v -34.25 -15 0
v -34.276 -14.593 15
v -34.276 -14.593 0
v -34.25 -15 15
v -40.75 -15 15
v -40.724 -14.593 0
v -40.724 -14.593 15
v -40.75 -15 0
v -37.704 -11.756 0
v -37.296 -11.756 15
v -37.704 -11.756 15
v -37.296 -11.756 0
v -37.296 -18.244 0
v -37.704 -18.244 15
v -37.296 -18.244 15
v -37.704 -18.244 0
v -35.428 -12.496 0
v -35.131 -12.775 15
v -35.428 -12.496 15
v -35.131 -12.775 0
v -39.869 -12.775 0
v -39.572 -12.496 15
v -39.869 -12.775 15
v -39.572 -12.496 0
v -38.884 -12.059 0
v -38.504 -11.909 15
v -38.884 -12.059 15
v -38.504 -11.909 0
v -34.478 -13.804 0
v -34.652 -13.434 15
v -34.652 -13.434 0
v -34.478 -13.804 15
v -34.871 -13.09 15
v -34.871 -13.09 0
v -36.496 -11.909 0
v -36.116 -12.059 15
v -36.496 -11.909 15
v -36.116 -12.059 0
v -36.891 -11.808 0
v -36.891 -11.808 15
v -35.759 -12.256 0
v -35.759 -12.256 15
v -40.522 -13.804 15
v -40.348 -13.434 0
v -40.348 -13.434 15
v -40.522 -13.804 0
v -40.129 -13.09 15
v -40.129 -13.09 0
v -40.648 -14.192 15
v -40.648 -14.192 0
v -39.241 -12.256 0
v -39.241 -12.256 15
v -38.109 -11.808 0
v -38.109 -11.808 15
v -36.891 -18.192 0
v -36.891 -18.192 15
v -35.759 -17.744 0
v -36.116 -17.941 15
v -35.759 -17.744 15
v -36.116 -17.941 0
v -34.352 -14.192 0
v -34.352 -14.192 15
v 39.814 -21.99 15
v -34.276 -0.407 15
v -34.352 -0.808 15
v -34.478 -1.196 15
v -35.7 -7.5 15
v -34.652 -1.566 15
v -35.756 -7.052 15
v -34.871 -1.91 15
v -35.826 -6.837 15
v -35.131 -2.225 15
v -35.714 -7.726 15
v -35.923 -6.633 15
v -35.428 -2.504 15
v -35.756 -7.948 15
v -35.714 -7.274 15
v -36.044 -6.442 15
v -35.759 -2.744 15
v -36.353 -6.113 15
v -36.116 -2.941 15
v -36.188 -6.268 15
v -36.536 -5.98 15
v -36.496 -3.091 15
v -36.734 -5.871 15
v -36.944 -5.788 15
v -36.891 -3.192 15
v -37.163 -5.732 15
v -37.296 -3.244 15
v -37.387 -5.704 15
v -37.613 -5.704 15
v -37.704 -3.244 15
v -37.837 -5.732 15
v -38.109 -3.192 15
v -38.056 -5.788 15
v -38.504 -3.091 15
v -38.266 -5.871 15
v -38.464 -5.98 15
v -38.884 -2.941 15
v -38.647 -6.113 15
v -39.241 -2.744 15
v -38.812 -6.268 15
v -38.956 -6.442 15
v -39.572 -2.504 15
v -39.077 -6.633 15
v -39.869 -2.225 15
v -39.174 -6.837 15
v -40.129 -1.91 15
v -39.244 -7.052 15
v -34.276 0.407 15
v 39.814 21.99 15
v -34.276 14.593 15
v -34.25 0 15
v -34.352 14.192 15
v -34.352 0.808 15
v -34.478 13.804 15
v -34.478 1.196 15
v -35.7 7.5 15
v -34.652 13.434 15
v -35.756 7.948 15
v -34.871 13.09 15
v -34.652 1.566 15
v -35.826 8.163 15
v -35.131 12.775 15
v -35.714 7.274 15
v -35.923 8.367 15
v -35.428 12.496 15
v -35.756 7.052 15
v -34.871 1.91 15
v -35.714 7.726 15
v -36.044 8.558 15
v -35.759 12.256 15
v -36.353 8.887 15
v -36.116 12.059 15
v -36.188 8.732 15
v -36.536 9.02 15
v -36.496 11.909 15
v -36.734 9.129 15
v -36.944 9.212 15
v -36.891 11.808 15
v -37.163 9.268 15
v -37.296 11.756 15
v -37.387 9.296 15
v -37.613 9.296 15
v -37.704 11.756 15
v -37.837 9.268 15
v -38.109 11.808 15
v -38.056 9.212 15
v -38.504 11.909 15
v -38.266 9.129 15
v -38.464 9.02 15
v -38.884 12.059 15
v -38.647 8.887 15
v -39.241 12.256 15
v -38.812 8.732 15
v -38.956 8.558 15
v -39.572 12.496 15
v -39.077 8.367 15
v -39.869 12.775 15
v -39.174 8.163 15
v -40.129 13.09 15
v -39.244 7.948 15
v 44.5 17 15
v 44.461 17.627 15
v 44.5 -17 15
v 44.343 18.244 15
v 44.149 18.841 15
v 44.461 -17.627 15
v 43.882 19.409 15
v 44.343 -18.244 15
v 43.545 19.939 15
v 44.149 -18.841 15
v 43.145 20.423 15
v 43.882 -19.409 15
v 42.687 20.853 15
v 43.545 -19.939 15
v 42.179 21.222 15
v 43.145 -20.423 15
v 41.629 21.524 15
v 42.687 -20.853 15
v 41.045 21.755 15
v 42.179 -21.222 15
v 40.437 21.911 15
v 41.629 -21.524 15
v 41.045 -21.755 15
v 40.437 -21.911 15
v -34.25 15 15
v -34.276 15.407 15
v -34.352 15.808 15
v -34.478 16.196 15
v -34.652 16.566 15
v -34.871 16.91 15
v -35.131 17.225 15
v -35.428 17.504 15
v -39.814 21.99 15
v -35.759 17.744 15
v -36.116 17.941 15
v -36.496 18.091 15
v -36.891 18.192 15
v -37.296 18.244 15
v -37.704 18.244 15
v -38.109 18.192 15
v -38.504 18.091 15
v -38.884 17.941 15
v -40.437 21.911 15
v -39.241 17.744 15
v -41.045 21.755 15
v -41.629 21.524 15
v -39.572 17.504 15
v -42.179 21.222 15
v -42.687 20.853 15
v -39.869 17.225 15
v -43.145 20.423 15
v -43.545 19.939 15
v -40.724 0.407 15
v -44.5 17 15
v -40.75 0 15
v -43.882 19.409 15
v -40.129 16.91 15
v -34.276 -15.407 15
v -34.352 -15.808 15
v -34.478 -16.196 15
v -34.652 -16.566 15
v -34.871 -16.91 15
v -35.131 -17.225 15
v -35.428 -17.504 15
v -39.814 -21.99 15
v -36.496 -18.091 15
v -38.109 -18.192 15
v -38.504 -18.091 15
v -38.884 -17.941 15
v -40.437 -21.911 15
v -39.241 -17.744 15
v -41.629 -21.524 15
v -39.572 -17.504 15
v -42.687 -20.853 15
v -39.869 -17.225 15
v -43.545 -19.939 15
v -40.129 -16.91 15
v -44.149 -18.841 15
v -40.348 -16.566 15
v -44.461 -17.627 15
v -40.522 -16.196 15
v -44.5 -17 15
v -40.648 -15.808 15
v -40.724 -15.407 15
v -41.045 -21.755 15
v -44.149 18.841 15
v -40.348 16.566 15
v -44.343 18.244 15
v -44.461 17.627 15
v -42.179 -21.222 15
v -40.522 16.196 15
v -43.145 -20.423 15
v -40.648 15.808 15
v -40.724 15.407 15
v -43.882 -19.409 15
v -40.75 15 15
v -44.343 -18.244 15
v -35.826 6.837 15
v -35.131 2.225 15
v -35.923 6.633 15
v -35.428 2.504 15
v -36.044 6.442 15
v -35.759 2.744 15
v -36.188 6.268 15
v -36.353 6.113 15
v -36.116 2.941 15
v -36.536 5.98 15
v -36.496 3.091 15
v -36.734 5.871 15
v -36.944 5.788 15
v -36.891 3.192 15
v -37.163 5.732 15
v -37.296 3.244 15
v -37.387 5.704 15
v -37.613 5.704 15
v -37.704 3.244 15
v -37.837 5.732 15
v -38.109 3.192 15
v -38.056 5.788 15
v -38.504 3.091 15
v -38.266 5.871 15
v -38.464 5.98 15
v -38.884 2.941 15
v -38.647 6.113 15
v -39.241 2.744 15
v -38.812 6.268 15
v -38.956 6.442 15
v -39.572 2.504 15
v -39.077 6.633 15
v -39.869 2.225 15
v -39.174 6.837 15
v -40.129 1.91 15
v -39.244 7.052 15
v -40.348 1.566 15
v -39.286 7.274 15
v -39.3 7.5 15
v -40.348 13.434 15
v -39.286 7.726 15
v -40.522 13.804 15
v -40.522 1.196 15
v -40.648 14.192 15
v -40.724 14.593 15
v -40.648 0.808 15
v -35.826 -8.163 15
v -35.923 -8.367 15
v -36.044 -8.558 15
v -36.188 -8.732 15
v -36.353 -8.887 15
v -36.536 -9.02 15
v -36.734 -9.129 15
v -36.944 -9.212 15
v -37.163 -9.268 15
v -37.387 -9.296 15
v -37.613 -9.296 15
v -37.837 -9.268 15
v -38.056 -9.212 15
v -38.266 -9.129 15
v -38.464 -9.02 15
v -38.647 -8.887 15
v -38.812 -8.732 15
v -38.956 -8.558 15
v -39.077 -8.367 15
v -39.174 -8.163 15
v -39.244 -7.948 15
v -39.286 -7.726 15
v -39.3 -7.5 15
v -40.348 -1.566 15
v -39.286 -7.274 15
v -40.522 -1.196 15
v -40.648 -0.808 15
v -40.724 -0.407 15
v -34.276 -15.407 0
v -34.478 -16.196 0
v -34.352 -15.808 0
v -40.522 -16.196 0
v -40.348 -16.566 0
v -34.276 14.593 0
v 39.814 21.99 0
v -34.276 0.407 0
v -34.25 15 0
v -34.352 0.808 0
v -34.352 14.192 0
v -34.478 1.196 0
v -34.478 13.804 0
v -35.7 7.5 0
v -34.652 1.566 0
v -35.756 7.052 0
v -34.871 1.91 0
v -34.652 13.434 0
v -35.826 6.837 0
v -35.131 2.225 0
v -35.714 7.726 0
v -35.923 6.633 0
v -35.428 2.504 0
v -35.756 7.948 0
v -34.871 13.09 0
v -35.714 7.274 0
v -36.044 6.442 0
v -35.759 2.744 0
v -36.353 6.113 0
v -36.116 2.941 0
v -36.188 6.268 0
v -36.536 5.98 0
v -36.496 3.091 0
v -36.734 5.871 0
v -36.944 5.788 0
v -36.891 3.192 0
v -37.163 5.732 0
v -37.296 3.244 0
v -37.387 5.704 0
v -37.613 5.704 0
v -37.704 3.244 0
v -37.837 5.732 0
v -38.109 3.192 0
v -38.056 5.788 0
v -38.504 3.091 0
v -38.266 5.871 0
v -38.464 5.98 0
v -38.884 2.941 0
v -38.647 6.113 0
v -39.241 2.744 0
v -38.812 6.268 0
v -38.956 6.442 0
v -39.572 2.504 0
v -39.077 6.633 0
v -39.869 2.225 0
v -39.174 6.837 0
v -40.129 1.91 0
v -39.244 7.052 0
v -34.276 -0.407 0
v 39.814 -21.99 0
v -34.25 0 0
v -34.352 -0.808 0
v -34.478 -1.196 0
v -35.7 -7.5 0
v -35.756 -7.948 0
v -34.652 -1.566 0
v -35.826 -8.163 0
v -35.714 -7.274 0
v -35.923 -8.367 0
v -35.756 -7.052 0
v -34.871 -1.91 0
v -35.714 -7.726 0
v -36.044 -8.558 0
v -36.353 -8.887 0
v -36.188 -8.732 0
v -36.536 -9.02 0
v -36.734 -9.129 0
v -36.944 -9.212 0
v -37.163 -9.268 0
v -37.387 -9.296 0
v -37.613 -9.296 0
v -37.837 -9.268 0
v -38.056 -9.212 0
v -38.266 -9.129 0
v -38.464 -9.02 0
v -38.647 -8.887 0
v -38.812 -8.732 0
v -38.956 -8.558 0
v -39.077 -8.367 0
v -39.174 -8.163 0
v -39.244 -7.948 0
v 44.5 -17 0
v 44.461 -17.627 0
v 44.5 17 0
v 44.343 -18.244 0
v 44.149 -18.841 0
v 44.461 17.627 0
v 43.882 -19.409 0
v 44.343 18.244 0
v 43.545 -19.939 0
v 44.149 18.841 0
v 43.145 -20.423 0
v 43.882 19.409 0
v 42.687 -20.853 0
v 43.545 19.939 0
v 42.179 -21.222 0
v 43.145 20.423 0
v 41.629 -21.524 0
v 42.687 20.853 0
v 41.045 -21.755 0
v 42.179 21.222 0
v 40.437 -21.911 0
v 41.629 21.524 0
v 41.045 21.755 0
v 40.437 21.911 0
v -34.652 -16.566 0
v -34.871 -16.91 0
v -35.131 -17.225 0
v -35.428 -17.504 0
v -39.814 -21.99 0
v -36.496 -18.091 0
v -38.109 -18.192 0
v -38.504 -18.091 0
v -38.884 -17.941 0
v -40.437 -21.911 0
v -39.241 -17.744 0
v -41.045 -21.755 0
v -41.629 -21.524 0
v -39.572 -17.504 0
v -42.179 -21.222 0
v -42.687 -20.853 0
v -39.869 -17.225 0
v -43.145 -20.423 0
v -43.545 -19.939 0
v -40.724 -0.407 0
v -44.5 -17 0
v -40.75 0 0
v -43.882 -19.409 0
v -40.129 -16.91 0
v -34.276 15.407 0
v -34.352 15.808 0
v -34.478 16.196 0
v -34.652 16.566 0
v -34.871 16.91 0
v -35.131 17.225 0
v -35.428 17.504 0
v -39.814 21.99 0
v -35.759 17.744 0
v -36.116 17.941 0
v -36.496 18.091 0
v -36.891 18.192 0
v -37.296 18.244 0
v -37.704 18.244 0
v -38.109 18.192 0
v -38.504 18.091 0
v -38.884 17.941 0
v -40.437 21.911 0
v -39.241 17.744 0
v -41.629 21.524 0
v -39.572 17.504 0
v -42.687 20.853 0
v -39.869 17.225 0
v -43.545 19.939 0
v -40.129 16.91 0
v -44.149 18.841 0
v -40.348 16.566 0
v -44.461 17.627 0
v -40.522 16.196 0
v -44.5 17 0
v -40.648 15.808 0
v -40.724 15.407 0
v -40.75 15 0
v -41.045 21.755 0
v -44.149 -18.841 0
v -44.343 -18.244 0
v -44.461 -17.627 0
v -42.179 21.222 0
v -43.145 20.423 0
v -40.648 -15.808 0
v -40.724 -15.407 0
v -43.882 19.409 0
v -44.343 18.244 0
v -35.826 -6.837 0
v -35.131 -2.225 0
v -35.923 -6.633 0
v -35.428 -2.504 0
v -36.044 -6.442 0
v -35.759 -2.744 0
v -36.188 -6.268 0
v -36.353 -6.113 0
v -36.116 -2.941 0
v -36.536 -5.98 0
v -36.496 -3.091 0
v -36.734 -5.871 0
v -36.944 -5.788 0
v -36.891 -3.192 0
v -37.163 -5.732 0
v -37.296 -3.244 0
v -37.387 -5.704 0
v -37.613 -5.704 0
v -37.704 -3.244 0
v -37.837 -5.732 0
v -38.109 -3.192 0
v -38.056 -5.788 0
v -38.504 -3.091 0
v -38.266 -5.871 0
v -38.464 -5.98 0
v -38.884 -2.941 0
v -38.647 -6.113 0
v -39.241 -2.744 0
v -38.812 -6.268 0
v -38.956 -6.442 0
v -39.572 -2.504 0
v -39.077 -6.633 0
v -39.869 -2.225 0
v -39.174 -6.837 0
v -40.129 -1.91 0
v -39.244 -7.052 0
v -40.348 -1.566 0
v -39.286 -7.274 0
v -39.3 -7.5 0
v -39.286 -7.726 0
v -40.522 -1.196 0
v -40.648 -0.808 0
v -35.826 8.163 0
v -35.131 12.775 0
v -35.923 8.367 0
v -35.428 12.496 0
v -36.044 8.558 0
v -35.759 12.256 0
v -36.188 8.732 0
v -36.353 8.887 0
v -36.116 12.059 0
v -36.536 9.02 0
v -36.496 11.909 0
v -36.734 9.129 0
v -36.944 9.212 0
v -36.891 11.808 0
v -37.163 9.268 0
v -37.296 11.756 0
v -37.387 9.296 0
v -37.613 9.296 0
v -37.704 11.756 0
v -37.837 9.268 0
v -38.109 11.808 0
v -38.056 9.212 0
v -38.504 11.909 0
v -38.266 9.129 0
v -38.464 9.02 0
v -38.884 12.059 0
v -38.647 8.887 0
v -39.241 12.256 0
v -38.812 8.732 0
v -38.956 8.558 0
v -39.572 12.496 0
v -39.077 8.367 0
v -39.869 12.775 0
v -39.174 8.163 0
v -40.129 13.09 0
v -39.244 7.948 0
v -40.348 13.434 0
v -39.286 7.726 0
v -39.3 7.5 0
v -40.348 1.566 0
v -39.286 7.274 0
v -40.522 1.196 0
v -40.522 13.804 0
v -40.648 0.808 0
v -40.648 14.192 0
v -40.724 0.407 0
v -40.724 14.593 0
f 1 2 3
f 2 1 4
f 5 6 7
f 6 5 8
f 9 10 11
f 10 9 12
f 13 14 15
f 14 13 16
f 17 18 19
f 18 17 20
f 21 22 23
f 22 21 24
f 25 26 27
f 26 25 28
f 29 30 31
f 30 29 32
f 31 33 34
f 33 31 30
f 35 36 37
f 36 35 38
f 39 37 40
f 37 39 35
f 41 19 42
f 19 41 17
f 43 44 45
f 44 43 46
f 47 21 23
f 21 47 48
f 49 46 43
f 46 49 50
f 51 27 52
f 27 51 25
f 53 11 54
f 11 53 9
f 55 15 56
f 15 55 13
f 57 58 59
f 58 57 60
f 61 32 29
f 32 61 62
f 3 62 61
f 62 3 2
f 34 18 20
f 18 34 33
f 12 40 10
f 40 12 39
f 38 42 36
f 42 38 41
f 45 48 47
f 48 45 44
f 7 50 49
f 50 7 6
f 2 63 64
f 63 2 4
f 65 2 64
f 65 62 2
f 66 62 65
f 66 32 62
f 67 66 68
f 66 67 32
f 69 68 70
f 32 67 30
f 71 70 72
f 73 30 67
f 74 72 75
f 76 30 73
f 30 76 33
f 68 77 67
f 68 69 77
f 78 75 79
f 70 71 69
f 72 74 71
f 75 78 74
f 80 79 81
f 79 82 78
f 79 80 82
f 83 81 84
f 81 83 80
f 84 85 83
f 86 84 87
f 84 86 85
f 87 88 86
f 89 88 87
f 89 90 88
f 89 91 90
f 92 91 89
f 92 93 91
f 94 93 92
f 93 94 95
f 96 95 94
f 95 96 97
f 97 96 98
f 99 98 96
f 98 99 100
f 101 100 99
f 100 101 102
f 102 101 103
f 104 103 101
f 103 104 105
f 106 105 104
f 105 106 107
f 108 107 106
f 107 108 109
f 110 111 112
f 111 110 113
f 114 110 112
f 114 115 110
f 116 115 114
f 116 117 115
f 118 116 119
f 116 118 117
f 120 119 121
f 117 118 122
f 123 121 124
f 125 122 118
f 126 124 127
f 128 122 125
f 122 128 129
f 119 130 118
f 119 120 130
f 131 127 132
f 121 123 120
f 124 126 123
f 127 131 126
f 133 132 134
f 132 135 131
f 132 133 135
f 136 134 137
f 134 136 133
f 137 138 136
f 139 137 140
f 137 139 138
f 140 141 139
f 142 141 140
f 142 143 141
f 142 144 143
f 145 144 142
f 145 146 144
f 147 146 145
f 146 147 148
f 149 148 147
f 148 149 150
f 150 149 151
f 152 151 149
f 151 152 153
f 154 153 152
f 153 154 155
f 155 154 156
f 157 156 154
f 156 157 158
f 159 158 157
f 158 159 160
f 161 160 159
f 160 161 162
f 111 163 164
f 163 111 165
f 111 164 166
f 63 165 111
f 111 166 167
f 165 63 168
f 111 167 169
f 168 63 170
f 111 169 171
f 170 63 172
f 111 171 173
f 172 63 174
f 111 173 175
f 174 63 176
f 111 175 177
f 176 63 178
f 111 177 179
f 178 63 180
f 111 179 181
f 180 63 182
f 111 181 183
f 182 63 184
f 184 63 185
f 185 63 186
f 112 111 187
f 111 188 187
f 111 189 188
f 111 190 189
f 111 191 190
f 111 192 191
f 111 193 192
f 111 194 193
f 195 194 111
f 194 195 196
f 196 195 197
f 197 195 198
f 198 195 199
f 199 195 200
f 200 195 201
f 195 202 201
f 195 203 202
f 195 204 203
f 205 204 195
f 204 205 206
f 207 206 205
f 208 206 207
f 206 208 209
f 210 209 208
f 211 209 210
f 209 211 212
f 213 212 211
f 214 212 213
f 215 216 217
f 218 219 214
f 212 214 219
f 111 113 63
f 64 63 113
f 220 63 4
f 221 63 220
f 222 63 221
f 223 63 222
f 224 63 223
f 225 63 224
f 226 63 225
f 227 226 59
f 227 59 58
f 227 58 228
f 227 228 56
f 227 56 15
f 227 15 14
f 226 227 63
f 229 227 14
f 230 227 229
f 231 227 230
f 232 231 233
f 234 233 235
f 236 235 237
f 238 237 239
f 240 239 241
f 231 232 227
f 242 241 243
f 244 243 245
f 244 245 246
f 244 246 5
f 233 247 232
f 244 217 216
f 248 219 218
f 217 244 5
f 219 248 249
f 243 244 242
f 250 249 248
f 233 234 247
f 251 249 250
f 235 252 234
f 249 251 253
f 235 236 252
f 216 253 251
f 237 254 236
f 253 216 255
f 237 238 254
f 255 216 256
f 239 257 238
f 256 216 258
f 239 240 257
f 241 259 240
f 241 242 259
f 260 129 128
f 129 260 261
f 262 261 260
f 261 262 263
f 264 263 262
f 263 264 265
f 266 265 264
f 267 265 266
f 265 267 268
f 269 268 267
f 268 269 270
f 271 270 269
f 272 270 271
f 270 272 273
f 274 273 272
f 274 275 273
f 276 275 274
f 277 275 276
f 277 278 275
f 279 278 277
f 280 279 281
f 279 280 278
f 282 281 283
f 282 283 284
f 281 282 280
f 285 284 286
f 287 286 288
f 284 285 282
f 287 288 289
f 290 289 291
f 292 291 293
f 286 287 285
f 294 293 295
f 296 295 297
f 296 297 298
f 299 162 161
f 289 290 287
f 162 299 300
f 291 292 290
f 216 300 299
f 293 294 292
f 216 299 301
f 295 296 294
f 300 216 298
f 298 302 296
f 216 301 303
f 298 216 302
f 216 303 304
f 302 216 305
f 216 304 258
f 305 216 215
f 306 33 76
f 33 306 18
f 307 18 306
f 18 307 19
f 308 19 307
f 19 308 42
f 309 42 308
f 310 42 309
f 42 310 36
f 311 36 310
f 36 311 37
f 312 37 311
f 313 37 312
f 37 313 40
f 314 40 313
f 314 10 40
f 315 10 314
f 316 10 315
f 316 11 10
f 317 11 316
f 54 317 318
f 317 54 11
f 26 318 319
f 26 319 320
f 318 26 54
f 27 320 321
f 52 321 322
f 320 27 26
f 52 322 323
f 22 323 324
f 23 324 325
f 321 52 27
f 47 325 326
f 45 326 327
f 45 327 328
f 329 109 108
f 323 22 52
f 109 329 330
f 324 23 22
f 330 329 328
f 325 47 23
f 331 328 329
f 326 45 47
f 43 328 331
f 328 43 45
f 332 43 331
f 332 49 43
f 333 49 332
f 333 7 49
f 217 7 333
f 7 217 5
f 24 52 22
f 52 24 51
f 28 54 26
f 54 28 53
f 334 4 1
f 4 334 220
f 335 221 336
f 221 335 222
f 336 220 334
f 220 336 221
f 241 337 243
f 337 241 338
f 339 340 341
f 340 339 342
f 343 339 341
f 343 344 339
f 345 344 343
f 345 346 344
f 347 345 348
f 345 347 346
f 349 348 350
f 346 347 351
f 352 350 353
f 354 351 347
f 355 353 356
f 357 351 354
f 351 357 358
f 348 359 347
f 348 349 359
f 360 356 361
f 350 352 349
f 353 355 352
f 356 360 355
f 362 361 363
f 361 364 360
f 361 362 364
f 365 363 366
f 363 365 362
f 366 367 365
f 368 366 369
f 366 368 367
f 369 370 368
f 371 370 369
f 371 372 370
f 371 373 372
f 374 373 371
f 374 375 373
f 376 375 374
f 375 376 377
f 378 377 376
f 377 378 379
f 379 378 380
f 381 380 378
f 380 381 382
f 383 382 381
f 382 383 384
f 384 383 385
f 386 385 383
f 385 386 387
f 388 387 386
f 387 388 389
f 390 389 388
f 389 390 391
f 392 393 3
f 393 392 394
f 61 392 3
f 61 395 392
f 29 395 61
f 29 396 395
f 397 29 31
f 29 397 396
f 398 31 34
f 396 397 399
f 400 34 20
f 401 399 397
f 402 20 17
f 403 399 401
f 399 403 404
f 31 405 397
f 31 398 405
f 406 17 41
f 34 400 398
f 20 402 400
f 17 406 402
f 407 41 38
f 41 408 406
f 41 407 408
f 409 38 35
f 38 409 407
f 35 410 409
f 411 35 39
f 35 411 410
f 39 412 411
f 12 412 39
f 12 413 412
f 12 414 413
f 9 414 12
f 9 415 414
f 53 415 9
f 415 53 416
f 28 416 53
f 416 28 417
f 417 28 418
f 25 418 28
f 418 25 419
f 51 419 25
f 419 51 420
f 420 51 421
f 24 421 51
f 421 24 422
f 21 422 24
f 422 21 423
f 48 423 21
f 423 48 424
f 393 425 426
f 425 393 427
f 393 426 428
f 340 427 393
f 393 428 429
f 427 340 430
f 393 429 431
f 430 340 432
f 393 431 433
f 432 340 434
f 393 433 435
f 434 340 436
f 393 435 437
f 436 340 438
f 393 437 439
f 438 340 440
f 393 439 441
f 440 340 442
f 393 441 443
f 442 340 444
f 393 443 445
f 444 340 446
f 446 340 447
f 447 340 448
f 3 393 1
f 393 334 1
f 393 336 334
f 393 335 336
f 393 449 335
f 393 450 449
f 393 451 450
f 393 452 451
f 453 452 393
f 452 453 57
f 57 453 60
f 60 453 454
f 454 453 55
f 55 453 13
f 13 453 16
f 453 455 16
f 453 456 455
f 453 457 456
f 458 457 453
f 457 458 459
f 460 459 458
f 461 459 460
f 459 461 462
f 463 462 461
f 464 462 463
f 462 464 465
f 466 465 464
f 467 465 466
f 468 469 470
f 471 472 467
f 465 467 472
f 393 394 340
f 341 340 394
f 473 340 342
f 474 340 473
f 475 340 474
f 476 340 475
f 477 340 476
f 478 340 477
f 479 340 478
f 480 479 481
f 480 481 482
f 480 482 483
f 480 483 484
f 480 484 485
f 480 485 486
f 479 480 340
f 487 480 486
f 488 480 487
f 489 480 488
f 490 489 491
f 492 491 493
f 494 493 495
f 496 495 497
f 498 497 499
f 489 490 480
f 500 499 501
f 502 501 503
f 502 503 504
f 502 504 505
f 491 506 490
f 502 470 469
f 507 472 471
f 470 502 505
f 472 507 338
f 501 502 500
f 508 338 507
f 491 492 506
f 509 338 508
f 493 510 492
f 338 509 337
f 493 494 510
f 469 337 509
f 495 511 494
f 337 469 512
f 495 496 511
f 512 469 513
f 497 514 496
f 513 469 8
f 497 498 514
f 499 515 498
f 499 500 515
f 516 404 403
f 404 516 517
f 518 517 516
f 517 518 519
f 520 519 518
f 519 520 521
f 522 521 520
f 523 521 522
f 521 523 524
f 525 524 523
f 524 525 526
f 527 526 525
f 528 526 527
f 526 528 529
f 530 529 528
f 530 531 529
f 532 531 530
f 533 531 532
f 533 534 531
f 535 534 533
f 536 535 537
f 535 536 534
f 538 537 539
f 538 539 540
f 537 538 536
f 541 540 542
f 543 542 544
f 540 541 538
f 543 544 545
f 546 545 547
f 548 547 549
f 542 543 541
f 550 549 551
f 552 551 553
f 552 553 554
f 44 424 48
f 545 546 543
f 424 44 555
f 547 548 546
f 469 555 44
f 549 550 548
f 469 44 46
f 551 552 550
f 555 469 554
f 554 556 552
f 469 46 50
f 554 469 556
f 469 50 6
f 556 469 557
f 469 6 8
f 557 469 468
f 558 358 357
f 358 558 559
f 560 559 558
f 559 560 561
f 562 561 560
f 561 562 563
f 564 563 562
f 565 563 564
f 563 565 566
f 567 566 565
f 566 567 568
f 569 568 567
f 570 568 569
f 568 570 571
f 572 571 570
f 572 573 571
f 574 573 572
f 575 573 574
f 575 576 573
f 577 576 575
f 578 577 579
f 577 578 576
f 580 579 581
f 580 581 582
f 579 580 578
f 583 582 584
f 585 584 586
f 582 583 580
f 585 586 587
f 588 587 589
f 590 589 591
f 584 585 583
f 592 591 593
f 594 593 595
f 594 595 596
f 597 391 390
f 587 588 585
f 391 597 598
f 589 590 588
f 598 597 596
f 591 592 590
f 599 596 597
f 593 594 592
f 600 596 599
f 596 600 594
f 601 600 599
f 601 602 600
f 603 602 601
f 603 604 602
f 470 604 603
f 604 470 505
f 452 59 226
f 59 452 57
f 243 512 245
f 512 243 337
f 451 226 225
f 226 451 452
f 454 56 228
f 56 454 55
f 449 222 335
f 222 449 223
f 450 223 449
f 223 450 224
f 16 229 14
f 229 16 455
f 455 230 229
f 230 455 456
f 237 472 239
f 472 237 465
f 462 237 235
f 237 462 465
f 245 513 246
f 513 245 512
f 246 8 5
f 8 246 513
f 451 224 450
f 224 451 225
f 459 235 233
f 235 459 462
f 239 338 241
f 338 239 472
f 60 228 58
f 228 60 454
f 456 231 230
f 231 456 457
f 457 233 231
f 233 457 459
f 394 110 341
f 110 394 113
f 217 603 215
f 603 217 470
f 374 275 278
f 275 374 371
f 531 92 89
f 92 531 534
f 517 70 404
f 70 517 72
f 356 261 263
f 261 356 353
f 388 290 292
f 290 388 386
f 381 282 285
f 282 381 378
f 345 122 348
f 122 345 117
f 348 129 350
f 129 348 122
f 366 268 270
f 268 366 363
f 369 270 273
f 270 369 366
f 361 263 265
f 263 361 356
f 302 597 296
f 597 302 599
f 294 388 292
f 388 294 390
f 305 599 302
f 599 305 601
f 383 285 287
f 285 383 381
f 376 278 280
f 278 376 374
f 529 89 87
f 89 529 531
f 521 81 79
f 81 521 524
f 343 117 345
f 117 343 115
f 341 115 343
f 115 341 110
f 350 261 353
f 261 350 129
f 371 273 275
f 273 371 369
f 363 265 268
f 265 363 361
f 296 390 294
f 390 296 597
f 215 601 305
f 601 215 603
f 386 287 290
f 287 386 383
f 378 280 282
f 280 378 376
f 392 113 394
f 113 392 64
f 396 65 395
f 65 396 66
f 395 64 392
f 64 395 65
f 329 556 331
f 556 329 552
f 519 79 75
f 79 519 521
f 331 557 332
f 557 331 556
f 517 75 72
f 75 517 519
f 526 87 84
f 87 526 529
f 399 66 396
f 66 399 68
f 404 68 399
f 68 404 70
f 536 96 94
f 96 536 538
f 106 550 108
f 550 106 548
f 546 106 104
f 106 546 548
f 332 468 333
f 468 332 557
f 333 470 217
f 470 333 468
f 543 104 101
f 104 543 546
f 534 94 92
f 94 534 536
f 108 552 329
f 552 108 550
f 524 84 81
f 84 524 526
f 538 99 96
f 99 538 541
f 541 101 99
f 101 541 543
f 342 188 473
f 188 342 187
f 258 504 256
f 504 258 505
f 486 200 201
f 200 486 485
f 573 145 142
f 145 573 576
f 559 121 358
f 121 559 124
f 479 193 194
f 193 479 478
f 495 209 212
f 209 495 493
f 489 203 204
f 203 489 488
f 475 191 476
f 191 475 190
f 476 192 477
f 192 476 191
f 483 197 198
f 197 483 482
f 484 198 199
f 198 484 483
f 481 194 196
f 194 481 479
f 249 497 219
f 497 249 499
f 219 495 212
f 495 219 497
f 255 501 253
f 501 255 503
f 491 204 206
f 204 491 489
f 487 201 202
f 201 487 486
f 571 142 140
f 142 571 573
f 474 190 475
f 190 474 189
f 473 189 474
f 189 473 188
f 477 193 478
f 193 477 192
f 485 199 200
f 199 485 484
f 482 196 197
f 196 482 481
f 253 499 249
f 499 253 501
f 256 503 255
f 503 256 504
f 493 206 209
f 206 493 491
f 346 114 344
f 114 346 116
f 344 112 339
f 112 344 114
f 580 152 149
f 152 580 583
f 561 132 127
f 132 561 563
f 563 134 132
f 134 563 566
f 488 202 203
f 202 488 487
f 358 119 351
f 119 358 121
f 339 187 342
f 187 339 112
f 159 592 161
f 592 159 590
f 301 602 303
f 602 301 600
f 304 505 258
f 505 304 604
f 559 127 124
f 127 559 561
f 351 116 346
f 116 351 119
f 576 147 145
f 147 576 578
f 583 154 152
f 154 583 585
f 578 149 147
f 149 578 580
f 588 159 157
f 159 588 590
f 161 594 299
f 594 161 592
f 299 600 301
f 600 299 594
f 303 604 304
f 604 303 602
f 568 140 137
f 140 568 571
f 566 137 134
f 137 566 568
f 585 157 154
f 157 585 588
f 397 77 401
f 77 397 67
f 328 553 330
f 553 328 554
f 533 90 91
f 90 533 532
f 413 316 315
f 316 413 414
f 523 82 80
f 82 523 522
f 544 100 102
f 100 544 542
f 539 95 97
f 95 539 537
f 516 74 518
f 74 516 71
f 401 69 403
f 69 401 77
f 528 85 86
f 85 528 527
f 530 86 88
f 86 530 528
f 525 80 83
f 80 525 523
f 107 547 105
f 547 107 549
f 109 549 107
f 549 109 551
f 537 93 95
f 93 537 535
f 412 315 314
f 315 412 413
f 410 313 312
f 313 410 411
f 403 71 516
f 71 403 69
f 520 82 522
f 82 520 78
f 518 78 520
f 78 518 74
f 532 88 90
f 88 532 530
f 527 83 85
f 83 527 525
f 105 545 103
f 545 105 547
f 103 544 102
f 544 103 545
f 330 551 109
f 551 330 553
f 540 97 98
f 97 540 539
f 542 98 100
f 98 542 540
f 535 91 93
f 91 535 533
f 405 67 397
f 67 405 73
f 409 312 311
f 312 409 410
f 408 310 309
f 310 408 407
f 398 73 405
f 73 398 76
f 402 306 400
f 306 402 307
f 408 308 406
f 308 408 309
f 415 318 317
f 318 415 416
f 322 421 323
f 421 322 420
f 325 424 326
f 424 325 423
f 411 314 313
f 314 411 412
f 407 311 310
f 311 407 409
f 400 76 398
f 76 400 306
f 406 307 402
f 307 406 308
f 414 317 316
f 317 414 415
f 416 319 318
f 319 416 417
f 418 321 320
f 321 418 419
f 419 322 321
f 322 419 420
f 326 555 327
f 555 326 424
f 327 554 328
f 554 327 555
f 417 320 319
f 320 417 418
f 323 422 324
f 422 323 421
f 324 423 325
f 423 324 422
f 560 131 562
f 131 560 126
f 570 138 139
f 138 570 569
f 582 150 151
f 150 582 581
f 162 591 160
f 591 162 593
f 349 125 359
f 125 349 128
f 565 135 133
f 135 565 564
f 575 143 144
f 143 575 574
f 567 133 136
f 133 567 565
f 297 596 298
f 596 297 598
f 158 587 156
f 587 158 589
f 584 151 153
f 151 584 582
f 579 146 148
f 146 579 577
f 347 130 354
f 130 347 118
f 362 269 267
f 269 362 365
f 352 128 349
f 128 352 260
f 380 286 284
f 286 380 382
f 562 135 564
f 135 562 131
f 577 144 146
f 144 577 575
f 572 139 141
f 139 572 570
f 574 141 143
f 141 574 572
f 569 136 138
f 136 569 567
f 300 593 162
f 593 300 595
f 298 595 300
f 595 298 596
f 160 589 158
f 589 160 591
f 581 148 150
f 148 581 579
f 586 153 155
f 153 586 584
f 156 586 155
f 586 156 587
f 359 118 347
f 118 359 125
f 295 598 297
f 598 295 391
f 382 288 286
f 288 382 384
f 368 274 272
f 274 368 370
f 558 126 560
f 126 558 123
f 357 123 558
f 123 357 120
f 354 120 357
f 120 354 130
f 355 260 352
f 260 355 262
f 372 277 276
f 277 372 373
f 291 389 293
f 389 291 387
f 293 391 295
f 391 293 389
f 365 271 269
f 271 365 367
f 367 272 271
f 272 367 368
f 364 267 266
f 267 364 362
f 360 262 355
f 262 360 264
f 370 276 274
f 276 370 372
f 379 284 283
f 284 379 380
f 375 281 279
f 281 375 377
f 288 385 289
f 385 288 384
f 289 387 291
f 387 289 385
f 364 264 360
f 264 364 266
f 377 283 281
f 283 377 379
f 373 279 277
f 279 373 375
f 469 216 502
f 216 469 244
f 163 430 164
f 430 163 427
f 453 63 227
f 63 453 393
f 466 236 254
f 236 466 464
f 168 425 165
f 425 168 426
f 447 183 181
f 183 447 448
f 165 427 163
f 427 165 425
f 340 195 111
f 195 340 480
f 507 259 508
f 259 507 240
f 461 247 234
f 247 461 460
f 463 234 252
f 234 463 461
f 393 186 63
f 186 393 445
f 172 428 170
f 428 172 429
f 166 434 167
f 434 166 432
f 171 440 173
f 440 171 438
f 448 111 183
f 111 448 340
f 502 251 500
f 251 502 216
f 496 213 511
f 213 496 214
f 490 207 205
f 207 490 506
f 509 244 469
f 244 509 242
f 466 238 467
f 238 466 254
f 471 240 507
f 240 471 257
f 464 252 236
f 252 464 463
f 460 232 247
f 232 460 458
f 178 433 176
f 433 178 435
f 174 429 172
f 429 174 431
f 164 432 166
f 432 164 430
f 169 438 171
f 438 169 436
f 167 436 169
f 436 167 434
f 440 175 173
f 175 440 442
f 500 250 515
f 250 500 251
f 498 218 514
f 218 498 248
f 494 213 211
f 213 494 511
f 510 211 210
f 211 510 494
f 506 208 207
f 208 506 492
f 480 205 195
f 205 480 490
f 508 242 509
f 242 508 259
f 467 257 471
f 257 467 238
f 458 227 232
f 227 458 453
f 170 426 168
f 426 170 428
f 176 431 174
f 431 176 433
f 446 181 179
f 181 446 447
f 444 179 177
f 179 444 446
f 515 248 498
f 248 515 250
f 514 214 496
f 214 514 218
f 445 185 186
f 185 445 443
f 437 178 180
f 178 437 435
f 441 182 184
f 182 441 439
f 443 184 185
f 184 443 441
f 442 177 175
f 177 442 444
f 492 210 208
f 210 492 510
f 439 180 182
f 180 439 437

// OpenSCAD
$fn = 50;


difference() {
	union() {
		hull() {
			translate(v = [-39.5000000000, 17.0000000000, 0]) {
				cylinder(h = 15, r = 5);
			}
			translate(v = [39.5000000000, 17.0000000000, 0]) {
				cylinder(h = 15, r = 5);
			}
			translate(v = [-39.5000000000, -17.0000000000, 0]) {
				cylinder(h = 15, r = 5);
			}
			translate(v = [39.5000000000, -17.0000000000, 0]) {
				cylinder(h = 15, r = 5);
			}
		}
	}
	union() {
		translate(v = [-37.5000000000, -15.0000000000, 0]) {
			cylinder(h = 15, r = 3.2500000000);
		}
		translate(v = [-37.5000000000, 0.0000000000, 0]) {
			cylinder(h = 15, r = 3.2500000000);
		}
		translate(v = [-37.5000000000, 15.0000000000, 0]) {
			cylinder(h = 15, r = 3.2500000000);
		}
		translate(v = [-37.5000000000, -15.0000000000, 0]) {
			cylinder(h = 15, r = 1.8000000000);
		}
		translate(v = [-37.5000000000, -7.5000000000, 0]) {
			cylinder(h = 15, r = 1.8000000000);
		}
		translate(v = [-37.5000000000, 0.0000000000, 0]) {
			cylinder(h = 15, r = 1.8000000000);
		}
		translate(v = [-37.5000000000, 7.5000000000, 0]) {
			cylinder(h = 15, r = 1.8000000000);
		}
		translate(v = [-37.5000000000, 15.0000000000, 0]) {
			cylinder(h = 15, r = 1.8000000000);
		}
		translate(v = [-37.5000000000, -15.0000000000, 0]) {
			cylinder(h = 15, r = 1.8000000000);
		}
		translate(v = [-37.5000000000, -7.5000000000, 0]) {
			cylinder(h = 15, r = 1.8000000000);
		}
		translate(v = [-37.5000000000, 0.0000000000, 0]) {
			cylinder(h = 15, r = 1.8000000000);
		}
		translate(v = [-37.5000000000, 7.5000000000, 0]) {
			cylinder(h = 15, r = 1.8000000000);
		}
		translate(v = [-37.5000000000, 15.0000000000, 0]) {
			cylinder(h = 15, r = 1.8000000000);
		}
		translate(v = [-37.5000000000, -15.0000000000, 0]) {
			cylinder(h = 15, r = 1.8000000000);
		}
		translate(v = [-37.5000000000, -7.5000000000, 0]) {
			cylinder(h = 15, r = 1.8000000000);
		}
		translate(v = [-37.5000000000, 0.0000000000, 0]) {
			cylinder(h = 15, r = 1.8000000000);
		}
		translate(v = [-37.5000000000, 7.5000000000, 0]) {
			cylinder(h = 15, r = 1.8000000000);
		}
		translate(v = [-37.5000000000, 15.0000000000, 0]) {
			cylinder(h = 15, r = 1.8000000000);
		}
	}
}
